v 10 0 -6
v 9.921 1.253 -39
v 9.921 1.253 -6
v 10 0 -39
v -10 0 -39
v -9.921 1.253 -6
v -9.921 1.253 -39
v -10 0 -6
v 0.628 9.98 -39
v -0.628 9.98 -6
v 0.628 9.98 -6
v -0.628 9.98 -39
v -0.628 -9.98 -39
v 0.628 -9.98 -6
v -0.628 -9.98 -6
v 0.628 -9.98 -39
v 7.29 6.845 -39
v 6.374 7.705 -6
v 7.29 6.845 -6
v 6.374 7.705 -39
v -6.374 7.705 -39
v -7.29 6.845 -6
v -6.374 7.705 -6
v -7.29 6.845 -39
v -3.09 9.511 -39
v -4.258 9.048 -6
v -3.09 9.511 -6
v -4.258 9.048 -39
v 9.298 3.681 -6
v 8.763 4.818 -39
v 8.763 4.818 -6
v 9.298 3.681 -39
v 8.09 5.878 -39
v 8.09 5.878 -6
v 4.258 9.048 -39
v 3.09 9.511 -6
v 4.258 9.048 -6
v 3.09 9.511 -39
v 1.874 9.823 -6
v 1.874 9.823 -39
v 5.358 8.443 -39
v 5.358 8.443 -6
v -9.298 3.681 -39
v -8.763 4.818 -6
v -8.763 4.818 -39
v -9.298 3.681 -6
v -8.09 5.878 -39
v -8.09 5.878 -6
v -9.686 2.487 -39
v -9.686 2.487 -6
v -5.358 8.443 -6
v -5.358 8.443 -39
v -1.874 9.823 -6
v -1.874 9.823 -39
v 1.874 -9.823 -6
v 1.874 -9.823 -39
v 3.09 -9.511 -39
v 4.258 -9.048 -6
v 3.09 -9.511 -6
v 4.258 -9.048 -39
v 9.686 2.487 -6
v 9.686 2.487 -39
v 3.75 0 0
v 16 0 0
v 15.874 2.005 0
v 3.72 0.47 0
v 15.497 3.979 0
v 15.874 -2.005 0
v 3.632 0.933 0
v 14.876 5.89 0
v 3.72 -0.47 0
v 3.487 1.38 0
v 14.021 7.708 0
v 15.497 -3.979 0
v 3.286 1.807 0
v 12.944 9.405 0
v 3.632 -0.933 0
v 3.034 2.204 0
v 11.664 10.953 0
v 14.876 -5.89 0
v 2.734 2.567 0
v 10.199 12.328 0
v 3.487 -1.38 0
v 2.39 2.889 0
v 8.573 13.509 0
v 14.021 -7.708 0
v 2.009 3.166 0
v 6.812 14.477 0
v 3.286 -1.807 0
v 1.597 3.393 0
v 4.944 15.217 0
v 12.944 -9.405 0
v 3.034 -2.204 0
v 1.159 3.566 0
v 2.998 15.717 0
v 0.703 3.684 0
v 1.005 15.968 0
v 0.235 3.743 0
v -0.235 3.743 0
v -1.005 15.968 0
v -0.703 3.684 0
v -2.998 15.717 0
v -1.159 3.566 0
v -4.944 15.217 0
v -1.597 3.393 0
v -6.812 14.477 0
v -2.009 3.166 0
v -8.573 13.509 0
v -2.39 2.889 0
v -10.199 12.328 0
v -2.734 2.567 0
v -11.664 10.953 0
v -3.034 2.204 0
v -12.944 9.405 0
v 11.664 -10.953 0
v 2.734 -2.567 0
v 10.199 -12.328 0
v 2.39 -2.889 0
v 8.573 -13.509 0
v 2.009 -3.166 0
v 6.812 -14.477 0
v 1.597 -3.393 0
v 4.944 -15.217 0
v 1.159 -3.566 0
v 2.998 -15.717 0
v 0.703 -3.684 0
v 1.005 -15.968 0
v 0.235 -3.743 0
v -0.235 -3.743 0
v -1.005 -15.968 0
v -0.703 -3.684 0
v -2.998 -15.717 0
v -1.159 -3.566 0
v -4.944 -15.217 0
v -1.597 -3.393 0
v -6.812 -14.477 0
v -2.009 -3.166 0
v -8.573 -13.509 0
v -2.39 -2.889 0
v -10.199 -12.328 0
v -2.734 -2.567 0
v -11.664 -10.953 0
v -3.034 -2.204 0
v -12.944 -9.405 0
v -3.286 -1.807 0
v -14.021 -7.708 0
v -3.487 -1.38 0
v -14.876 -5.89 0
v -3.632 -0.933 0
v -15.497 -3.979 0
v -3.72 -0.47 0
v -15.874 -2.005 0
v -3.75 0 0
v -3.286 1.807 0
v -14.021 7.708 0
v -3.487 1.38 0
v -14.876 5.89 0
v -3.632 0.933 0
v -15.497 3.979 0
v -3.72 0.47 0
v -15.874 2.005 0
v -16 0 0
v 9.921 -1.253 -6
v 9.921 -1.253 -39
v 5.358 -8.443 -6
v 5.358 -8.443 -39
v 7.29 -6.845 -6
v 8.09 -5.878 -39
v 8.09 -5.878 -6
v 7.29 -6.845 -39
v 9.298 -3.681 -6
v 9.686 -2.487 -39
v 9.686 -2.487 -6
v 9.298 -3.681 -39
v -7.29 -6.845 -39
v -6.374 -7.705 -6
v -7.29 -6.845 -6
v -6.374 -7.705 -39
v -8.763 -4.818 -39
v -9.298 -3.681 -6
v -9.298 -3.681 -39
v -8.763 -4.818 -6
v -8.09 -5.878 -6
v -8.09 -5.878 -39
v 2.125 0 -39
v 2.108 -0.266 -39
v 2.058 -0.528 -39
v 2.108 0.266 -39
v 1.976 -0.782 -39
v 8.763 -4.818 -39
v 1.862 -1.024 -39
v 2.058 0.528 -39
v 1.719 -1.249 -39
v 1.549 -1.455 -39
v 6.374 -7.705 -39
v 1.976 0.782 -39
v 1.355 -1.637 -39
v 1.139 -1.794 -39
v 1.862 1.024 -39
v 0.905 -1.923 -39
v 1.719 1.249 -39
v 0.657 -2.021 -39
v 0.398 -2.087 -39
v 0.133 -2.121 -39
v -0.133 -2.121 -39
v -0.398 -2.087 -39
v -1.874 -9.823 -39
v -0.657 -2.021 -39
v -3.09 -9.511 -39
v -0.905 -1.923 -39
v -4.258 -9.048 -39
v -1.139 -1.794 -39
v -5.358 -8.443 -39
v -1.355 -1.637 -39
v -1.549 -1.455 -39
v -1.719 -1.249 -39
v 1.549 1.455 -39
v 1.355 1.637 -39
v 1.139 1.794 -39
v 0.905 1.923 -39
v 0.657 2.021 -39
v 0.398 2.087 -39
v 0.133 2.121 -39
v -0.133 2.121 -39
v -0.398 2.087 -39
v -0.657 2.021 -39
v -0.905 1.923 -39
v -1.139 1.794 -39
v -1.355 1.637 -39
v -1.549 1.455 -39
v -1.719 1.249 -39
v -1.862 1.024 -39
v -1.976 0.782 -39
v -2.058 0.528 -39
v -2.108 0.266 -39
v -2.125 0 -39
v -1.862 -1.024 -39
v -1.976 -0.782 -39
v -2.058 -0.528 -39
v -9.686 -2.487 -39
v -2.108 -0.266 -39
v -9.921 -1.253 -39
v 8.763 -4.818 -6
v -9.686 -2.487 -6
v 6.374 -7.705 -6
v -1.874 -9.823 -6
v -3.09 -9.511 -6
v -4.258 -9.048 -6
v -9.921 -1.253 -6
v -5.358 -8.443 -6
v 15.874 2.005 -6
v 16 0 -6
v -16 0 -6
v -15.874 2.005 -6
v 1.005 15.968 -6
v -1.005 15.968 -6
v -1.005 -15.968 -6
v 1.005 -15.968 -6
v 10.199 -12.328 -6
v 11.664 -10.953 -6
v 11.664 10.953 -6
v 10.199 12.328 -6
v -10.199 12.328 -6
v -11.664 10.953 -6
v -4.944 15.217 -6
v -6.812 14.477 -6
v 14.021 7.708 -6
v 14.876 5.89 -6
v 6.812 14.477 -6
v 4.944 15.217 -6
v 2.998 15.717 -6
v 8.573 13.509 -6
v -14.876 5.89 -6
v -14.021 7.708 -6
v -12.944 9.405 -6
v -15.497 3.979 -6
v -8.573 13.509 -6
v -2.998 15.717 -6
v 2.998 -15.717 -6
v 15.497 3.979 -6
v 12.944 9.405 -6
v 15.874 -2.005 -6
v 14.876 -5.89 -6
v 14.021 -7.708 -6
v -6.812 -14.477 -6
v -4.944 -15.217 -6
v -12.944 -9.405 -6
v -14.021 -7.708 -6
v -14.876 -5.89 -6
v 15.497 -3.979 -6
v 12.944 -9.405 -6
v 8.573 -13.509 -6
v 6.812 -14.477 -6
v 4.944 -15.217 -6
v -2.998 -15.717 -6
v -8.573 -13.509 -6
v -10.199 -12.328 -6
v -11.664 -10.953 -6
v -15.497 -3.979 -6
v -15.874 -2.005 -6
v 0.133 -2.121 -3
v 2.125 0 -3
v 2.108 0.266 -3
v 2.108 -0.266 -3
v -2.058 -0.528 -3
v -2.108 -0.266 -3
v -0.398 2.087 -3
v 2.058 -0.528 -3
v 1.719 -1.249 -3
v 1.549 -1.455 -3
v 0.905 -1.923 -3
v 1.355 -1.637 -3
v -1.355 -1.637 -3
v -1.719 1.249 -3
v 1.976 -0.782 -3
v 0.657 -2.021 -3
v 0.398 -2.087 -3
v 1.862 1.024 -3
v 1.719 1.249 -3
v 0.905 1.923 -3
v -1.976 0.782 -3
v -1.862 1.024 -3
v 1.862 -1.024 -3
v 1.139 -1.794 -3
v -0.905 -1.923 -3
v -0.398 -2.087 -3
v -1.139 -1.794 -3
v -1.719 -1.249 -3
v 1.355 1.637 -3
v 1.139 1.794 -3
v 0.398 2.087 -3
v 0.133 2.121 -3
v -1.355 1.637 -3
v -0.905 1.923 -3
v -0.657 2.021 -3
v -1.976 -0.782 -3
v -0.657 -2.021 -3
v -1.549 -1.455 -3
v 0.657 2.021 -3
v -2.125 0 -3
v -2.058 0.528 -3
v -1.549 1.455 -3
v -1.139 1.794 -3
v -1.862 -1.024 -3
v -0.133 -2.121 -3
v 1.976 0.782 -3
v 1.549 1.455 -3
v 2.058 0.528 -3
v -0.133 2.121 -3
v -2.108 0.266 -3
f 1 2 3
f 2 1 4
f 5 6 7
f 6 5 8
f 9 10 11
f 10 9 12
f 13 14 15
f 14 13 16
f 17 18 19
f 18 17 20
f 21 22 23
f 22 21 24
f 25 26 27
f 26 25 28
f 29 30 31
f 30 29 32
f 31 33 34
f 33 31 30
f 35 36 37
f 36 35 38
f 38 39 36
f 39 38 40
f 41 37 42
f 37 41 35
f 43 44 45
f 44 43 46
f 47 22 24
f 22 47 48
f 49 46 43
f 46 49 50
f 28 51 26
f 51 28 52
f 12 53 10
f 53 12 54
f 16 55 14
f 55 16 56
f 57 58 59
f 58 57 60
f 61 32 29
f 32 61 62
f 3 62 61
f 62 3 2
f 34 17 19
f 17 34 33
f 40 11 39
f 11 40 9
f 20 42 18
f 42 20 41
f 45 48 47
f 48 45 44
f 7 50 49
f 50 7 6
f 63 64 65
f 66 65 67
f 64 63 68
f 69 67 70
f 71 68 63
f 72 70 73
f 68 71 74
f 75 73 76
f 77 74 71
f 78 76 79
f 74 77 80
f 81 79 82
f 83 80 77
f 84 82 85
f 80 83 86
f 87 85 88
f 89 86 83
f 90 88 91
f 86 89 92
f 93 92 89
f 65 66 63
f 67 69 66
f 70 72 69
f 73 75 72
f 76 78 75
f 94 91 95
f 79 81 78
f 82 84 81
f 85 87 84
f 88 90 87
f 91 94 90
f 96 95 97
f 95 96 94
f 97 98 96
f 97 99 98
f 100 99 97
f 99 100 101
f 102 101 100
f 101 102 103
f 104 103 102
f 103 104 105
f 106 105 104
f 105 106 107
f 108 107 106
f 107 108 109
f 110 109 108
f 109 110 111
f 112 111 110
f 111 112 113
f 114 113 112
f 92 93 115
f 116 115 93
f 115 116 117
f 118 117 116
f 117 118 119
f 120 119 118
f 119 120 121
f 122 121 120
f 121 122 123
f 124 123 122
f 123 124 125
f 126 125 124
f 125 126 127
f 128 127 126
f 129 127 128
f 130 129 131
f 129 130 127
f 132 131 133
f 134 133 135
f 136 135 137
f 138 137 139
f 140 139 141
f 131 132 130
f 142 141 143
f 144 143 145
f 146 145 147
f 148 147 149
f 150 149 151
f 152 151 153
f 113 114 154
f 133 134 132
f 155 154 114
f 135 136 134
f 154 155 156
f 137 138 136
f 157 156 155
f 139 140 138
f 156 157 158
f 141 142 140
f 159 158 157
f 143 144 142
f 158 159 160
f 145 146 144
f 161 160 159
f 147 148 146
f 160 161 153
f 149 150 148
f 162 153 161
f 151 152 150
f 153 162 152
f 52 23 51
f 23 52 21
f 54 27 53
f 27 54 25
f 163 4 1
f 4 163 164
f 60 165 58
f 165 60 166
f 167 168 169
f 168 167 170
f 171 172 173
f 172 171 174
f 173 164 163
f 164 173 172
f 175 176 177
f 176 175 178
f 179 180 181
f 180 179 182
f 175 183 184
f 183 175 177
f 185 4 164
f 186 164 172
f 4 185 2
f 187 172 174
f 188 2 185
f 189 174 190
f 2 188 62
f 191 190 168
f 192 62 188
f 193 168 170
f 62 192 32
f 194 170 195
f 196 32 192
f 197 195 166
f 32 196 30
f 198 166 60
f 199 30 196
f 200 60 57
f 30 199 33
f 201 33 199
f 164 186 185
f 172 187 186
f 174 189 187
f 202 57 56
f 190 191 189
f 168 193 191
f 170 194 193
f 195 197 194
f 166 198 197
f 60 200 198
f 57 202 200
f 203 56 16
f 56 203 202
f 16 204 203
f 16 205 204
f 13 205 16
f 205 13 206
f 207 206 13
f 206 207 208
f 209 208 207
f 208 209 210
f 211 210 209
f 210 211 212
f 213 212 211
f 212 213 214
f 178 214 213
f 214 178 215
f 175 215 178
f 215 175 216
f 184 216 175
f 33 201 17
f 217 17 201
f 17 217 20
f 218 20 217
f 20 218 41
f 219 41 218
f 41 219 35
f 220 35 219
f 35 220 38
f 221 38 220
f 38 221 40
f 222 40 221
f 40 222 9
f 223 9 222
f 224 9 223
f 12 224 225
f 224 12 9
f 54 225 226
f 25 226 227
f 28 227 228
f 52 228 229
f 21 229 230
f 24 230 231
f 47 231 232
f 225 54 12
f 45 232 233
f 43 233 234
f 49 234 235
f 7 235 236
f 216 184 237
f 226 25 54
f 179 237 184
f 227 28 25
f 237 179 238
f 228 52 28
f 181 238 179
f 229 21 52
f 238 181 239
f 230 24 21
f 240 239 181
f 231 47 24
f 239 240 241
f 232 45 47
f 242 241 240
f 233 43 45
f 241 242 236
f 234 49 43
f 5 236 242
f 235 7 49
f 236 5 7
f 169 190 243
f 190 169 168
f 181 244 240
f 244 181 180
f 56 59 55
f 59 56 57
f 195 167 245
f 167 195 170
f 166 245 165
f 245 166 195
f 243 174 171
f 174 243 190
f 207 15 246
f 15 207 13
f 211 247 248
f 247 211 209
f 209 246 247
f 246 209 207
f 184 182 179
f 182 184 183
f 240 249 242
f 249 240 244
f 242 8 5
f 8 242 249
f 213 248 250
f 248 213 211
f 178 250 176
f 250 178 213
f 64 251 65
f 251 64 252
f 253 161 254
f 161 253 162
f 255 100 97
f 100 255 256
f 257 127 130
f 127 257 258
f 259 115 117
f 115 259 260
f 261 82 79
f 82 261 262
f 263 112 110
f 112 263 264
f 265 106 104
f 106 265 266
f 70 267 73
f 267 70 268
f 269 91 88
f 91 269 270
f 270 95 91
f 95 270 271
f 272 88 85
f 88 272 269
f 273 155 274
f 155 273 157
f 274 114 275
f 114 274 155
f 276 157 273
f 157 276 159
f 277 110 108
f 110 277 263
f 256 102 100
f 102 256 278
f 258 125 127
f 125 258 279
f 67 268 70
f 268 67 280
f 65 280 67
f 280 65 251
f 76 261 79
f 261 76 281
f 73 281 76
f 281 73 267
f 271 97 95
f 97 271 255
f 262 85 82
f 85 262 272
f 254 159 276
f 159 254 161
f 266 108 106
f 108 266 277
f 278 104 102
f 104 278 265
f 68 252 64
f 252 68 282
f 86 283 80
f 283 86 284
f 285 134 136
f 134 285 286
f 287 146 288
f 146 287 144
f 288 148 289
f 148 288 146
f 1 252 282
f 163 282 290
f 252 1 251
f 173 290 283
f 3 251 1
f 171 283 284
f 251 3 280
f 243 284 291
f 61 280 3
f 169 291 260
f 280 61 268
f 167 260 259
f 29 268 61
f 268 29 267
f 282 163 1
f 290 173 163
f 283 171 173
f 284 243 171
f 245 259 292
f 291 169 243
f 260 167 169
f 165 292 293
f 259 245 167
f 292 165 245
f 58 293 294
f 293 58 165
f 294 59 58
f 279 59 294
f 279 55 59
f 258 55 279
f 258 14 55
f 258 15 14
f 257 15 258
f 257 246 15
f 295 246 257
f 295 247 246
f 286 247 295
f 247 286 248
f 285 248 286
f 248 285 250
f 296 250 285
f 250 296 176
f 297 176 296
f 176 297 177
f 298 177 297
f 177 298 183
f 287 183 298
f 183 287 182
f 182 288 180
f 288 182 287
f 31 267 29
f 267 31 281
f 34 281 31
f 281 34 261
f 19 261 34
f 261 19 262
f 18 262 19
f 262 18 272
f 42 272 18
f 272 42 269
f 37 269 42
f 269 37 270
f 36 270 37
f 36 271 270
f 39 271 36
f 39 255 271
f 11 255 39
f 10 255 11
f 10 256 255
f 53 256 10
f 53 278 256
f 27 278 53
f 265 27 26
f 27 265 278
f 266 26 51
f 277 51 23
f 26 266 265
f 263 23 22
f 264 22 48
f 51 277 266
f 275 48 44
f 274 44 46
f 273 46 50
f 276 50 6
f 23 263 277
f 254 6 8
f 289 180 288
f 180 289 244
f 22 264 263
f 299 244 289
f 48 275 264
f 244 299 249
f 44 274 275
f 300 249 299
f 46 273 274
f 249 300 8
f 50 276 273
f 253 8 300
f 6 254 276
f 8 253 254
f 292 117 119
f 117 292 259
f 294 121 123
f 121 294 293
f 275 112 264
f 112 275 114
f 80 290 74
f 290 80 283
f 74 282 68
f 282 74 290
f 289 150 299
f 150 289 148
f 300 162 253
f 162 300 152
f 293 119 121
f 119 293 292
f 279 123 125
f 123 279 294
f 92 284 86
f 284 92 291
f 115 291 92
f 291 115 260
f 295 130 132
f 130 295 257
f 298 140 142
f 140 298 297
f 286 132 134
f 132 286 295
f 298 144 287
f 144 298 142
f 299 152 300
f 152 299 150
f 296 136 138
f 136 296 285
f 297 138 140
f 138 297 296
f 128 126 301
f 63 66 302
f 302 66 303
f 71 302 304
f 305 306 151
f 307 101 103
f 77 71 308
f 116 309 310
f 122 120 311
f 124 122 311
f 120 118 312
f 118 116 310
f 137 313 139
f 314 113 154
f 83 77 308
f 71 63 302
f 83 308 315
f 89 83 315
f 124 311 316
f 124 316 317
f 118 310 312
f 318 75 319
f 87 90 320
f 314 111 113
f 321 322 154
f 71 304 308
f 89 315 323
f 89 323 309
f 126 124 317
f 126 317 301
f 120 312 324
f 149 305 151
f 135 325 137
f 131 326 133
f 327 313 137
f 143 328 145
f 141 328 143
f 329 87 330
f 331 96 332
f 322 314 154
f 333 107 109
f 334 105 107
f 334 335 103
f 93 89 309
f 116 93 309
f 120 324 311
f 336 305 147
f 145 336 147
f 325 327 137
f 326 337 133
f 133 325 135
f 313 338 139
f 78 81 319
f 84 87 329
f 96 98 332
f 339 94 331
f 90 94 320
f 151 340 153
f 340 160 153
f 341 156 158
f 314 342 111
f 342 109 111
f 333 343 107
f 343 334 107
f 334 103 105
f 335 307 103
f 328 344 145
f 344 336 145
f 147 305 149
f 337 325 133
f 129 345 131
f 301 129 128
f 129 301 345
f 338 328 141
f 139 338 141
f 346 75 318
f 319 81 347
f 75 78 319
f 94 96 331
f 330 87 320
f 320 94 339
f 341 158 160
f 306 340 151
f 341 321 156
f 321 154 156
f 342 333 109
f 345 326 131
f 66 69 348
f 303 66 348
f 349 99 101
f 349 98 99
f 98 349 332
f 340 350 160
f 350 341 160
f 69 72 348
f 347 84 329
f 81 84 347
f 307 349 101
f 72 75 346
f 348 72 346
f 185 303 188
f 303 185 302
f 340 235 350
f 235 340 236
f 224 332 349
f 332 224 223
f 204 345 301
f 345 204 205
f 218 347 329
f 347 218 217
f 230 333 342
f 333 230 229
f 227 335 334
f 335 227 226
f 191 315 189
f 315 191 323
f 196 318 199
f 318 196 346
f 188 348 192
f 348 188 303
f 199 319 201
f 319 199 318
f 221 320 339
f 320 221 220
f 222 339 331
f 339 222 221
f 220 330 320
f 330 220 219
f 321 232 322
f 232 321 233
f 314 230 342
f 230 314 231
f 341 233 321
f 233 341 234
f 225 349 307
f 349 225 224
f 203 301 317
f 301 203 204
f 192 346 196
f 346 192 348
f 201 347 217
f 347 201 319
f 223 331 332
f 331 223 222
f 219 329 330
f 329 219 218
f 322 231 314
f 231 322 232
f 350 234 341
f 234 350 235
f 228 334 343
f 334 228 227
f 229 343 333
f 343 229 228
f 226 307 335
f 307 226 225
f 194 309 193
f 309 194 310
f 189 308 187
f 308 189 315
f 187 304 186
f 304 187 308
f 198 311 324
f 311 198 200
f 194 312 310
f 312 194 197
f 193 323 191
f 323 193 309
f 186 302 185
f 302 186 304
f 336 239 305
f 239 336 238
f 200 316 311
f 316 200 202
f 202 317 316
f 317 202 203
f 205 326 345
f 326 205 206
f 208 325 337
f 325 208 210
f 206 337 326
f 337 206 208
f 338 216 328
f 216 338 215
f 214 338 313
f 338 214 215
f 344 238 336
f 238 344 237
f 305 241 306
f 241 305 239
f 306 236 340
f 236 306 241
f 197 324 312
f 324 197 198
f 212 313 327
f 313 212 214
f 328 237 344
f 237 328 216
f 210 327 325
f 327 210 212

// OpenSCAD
$fn = 50;


difference() {
	union() {
		translate(v = [0, 0, -39.0000000000]) {
			cylinder(h = 39, r = 10.0000000000);
		}
		translate(v = [0, 0, -6.0000000000]) {
			cylinder(h = 6, r = 16.0000000000);
		}
	}
	union() {
		translate(v = [0, 0, 0]) {
			rotate(a = [0, 0, 0]) {
				difference() {
					union() {
						#translate(v = [0, 0, -39.0000000000]) {
							cylinder(h = 39, r = 2.0000000000);
						}
						#translate(v = [0, 0, -3]) {
							cylinder(h = 3, r = 10.0000000000, r1 = 2.1250000000, r2 = 3.7500000000);
						}
						#translate(v = [0, 0, -39.0000000000]) {
							cylinder(h = 39, r = 2.1250000000);
						}
						#translate(v = [0, 0, -39.0000000000]) {
							cylinder(h = 39, r = 2.0000000000);
						}
					}
					union();
				}
			}
		}
	}
}
